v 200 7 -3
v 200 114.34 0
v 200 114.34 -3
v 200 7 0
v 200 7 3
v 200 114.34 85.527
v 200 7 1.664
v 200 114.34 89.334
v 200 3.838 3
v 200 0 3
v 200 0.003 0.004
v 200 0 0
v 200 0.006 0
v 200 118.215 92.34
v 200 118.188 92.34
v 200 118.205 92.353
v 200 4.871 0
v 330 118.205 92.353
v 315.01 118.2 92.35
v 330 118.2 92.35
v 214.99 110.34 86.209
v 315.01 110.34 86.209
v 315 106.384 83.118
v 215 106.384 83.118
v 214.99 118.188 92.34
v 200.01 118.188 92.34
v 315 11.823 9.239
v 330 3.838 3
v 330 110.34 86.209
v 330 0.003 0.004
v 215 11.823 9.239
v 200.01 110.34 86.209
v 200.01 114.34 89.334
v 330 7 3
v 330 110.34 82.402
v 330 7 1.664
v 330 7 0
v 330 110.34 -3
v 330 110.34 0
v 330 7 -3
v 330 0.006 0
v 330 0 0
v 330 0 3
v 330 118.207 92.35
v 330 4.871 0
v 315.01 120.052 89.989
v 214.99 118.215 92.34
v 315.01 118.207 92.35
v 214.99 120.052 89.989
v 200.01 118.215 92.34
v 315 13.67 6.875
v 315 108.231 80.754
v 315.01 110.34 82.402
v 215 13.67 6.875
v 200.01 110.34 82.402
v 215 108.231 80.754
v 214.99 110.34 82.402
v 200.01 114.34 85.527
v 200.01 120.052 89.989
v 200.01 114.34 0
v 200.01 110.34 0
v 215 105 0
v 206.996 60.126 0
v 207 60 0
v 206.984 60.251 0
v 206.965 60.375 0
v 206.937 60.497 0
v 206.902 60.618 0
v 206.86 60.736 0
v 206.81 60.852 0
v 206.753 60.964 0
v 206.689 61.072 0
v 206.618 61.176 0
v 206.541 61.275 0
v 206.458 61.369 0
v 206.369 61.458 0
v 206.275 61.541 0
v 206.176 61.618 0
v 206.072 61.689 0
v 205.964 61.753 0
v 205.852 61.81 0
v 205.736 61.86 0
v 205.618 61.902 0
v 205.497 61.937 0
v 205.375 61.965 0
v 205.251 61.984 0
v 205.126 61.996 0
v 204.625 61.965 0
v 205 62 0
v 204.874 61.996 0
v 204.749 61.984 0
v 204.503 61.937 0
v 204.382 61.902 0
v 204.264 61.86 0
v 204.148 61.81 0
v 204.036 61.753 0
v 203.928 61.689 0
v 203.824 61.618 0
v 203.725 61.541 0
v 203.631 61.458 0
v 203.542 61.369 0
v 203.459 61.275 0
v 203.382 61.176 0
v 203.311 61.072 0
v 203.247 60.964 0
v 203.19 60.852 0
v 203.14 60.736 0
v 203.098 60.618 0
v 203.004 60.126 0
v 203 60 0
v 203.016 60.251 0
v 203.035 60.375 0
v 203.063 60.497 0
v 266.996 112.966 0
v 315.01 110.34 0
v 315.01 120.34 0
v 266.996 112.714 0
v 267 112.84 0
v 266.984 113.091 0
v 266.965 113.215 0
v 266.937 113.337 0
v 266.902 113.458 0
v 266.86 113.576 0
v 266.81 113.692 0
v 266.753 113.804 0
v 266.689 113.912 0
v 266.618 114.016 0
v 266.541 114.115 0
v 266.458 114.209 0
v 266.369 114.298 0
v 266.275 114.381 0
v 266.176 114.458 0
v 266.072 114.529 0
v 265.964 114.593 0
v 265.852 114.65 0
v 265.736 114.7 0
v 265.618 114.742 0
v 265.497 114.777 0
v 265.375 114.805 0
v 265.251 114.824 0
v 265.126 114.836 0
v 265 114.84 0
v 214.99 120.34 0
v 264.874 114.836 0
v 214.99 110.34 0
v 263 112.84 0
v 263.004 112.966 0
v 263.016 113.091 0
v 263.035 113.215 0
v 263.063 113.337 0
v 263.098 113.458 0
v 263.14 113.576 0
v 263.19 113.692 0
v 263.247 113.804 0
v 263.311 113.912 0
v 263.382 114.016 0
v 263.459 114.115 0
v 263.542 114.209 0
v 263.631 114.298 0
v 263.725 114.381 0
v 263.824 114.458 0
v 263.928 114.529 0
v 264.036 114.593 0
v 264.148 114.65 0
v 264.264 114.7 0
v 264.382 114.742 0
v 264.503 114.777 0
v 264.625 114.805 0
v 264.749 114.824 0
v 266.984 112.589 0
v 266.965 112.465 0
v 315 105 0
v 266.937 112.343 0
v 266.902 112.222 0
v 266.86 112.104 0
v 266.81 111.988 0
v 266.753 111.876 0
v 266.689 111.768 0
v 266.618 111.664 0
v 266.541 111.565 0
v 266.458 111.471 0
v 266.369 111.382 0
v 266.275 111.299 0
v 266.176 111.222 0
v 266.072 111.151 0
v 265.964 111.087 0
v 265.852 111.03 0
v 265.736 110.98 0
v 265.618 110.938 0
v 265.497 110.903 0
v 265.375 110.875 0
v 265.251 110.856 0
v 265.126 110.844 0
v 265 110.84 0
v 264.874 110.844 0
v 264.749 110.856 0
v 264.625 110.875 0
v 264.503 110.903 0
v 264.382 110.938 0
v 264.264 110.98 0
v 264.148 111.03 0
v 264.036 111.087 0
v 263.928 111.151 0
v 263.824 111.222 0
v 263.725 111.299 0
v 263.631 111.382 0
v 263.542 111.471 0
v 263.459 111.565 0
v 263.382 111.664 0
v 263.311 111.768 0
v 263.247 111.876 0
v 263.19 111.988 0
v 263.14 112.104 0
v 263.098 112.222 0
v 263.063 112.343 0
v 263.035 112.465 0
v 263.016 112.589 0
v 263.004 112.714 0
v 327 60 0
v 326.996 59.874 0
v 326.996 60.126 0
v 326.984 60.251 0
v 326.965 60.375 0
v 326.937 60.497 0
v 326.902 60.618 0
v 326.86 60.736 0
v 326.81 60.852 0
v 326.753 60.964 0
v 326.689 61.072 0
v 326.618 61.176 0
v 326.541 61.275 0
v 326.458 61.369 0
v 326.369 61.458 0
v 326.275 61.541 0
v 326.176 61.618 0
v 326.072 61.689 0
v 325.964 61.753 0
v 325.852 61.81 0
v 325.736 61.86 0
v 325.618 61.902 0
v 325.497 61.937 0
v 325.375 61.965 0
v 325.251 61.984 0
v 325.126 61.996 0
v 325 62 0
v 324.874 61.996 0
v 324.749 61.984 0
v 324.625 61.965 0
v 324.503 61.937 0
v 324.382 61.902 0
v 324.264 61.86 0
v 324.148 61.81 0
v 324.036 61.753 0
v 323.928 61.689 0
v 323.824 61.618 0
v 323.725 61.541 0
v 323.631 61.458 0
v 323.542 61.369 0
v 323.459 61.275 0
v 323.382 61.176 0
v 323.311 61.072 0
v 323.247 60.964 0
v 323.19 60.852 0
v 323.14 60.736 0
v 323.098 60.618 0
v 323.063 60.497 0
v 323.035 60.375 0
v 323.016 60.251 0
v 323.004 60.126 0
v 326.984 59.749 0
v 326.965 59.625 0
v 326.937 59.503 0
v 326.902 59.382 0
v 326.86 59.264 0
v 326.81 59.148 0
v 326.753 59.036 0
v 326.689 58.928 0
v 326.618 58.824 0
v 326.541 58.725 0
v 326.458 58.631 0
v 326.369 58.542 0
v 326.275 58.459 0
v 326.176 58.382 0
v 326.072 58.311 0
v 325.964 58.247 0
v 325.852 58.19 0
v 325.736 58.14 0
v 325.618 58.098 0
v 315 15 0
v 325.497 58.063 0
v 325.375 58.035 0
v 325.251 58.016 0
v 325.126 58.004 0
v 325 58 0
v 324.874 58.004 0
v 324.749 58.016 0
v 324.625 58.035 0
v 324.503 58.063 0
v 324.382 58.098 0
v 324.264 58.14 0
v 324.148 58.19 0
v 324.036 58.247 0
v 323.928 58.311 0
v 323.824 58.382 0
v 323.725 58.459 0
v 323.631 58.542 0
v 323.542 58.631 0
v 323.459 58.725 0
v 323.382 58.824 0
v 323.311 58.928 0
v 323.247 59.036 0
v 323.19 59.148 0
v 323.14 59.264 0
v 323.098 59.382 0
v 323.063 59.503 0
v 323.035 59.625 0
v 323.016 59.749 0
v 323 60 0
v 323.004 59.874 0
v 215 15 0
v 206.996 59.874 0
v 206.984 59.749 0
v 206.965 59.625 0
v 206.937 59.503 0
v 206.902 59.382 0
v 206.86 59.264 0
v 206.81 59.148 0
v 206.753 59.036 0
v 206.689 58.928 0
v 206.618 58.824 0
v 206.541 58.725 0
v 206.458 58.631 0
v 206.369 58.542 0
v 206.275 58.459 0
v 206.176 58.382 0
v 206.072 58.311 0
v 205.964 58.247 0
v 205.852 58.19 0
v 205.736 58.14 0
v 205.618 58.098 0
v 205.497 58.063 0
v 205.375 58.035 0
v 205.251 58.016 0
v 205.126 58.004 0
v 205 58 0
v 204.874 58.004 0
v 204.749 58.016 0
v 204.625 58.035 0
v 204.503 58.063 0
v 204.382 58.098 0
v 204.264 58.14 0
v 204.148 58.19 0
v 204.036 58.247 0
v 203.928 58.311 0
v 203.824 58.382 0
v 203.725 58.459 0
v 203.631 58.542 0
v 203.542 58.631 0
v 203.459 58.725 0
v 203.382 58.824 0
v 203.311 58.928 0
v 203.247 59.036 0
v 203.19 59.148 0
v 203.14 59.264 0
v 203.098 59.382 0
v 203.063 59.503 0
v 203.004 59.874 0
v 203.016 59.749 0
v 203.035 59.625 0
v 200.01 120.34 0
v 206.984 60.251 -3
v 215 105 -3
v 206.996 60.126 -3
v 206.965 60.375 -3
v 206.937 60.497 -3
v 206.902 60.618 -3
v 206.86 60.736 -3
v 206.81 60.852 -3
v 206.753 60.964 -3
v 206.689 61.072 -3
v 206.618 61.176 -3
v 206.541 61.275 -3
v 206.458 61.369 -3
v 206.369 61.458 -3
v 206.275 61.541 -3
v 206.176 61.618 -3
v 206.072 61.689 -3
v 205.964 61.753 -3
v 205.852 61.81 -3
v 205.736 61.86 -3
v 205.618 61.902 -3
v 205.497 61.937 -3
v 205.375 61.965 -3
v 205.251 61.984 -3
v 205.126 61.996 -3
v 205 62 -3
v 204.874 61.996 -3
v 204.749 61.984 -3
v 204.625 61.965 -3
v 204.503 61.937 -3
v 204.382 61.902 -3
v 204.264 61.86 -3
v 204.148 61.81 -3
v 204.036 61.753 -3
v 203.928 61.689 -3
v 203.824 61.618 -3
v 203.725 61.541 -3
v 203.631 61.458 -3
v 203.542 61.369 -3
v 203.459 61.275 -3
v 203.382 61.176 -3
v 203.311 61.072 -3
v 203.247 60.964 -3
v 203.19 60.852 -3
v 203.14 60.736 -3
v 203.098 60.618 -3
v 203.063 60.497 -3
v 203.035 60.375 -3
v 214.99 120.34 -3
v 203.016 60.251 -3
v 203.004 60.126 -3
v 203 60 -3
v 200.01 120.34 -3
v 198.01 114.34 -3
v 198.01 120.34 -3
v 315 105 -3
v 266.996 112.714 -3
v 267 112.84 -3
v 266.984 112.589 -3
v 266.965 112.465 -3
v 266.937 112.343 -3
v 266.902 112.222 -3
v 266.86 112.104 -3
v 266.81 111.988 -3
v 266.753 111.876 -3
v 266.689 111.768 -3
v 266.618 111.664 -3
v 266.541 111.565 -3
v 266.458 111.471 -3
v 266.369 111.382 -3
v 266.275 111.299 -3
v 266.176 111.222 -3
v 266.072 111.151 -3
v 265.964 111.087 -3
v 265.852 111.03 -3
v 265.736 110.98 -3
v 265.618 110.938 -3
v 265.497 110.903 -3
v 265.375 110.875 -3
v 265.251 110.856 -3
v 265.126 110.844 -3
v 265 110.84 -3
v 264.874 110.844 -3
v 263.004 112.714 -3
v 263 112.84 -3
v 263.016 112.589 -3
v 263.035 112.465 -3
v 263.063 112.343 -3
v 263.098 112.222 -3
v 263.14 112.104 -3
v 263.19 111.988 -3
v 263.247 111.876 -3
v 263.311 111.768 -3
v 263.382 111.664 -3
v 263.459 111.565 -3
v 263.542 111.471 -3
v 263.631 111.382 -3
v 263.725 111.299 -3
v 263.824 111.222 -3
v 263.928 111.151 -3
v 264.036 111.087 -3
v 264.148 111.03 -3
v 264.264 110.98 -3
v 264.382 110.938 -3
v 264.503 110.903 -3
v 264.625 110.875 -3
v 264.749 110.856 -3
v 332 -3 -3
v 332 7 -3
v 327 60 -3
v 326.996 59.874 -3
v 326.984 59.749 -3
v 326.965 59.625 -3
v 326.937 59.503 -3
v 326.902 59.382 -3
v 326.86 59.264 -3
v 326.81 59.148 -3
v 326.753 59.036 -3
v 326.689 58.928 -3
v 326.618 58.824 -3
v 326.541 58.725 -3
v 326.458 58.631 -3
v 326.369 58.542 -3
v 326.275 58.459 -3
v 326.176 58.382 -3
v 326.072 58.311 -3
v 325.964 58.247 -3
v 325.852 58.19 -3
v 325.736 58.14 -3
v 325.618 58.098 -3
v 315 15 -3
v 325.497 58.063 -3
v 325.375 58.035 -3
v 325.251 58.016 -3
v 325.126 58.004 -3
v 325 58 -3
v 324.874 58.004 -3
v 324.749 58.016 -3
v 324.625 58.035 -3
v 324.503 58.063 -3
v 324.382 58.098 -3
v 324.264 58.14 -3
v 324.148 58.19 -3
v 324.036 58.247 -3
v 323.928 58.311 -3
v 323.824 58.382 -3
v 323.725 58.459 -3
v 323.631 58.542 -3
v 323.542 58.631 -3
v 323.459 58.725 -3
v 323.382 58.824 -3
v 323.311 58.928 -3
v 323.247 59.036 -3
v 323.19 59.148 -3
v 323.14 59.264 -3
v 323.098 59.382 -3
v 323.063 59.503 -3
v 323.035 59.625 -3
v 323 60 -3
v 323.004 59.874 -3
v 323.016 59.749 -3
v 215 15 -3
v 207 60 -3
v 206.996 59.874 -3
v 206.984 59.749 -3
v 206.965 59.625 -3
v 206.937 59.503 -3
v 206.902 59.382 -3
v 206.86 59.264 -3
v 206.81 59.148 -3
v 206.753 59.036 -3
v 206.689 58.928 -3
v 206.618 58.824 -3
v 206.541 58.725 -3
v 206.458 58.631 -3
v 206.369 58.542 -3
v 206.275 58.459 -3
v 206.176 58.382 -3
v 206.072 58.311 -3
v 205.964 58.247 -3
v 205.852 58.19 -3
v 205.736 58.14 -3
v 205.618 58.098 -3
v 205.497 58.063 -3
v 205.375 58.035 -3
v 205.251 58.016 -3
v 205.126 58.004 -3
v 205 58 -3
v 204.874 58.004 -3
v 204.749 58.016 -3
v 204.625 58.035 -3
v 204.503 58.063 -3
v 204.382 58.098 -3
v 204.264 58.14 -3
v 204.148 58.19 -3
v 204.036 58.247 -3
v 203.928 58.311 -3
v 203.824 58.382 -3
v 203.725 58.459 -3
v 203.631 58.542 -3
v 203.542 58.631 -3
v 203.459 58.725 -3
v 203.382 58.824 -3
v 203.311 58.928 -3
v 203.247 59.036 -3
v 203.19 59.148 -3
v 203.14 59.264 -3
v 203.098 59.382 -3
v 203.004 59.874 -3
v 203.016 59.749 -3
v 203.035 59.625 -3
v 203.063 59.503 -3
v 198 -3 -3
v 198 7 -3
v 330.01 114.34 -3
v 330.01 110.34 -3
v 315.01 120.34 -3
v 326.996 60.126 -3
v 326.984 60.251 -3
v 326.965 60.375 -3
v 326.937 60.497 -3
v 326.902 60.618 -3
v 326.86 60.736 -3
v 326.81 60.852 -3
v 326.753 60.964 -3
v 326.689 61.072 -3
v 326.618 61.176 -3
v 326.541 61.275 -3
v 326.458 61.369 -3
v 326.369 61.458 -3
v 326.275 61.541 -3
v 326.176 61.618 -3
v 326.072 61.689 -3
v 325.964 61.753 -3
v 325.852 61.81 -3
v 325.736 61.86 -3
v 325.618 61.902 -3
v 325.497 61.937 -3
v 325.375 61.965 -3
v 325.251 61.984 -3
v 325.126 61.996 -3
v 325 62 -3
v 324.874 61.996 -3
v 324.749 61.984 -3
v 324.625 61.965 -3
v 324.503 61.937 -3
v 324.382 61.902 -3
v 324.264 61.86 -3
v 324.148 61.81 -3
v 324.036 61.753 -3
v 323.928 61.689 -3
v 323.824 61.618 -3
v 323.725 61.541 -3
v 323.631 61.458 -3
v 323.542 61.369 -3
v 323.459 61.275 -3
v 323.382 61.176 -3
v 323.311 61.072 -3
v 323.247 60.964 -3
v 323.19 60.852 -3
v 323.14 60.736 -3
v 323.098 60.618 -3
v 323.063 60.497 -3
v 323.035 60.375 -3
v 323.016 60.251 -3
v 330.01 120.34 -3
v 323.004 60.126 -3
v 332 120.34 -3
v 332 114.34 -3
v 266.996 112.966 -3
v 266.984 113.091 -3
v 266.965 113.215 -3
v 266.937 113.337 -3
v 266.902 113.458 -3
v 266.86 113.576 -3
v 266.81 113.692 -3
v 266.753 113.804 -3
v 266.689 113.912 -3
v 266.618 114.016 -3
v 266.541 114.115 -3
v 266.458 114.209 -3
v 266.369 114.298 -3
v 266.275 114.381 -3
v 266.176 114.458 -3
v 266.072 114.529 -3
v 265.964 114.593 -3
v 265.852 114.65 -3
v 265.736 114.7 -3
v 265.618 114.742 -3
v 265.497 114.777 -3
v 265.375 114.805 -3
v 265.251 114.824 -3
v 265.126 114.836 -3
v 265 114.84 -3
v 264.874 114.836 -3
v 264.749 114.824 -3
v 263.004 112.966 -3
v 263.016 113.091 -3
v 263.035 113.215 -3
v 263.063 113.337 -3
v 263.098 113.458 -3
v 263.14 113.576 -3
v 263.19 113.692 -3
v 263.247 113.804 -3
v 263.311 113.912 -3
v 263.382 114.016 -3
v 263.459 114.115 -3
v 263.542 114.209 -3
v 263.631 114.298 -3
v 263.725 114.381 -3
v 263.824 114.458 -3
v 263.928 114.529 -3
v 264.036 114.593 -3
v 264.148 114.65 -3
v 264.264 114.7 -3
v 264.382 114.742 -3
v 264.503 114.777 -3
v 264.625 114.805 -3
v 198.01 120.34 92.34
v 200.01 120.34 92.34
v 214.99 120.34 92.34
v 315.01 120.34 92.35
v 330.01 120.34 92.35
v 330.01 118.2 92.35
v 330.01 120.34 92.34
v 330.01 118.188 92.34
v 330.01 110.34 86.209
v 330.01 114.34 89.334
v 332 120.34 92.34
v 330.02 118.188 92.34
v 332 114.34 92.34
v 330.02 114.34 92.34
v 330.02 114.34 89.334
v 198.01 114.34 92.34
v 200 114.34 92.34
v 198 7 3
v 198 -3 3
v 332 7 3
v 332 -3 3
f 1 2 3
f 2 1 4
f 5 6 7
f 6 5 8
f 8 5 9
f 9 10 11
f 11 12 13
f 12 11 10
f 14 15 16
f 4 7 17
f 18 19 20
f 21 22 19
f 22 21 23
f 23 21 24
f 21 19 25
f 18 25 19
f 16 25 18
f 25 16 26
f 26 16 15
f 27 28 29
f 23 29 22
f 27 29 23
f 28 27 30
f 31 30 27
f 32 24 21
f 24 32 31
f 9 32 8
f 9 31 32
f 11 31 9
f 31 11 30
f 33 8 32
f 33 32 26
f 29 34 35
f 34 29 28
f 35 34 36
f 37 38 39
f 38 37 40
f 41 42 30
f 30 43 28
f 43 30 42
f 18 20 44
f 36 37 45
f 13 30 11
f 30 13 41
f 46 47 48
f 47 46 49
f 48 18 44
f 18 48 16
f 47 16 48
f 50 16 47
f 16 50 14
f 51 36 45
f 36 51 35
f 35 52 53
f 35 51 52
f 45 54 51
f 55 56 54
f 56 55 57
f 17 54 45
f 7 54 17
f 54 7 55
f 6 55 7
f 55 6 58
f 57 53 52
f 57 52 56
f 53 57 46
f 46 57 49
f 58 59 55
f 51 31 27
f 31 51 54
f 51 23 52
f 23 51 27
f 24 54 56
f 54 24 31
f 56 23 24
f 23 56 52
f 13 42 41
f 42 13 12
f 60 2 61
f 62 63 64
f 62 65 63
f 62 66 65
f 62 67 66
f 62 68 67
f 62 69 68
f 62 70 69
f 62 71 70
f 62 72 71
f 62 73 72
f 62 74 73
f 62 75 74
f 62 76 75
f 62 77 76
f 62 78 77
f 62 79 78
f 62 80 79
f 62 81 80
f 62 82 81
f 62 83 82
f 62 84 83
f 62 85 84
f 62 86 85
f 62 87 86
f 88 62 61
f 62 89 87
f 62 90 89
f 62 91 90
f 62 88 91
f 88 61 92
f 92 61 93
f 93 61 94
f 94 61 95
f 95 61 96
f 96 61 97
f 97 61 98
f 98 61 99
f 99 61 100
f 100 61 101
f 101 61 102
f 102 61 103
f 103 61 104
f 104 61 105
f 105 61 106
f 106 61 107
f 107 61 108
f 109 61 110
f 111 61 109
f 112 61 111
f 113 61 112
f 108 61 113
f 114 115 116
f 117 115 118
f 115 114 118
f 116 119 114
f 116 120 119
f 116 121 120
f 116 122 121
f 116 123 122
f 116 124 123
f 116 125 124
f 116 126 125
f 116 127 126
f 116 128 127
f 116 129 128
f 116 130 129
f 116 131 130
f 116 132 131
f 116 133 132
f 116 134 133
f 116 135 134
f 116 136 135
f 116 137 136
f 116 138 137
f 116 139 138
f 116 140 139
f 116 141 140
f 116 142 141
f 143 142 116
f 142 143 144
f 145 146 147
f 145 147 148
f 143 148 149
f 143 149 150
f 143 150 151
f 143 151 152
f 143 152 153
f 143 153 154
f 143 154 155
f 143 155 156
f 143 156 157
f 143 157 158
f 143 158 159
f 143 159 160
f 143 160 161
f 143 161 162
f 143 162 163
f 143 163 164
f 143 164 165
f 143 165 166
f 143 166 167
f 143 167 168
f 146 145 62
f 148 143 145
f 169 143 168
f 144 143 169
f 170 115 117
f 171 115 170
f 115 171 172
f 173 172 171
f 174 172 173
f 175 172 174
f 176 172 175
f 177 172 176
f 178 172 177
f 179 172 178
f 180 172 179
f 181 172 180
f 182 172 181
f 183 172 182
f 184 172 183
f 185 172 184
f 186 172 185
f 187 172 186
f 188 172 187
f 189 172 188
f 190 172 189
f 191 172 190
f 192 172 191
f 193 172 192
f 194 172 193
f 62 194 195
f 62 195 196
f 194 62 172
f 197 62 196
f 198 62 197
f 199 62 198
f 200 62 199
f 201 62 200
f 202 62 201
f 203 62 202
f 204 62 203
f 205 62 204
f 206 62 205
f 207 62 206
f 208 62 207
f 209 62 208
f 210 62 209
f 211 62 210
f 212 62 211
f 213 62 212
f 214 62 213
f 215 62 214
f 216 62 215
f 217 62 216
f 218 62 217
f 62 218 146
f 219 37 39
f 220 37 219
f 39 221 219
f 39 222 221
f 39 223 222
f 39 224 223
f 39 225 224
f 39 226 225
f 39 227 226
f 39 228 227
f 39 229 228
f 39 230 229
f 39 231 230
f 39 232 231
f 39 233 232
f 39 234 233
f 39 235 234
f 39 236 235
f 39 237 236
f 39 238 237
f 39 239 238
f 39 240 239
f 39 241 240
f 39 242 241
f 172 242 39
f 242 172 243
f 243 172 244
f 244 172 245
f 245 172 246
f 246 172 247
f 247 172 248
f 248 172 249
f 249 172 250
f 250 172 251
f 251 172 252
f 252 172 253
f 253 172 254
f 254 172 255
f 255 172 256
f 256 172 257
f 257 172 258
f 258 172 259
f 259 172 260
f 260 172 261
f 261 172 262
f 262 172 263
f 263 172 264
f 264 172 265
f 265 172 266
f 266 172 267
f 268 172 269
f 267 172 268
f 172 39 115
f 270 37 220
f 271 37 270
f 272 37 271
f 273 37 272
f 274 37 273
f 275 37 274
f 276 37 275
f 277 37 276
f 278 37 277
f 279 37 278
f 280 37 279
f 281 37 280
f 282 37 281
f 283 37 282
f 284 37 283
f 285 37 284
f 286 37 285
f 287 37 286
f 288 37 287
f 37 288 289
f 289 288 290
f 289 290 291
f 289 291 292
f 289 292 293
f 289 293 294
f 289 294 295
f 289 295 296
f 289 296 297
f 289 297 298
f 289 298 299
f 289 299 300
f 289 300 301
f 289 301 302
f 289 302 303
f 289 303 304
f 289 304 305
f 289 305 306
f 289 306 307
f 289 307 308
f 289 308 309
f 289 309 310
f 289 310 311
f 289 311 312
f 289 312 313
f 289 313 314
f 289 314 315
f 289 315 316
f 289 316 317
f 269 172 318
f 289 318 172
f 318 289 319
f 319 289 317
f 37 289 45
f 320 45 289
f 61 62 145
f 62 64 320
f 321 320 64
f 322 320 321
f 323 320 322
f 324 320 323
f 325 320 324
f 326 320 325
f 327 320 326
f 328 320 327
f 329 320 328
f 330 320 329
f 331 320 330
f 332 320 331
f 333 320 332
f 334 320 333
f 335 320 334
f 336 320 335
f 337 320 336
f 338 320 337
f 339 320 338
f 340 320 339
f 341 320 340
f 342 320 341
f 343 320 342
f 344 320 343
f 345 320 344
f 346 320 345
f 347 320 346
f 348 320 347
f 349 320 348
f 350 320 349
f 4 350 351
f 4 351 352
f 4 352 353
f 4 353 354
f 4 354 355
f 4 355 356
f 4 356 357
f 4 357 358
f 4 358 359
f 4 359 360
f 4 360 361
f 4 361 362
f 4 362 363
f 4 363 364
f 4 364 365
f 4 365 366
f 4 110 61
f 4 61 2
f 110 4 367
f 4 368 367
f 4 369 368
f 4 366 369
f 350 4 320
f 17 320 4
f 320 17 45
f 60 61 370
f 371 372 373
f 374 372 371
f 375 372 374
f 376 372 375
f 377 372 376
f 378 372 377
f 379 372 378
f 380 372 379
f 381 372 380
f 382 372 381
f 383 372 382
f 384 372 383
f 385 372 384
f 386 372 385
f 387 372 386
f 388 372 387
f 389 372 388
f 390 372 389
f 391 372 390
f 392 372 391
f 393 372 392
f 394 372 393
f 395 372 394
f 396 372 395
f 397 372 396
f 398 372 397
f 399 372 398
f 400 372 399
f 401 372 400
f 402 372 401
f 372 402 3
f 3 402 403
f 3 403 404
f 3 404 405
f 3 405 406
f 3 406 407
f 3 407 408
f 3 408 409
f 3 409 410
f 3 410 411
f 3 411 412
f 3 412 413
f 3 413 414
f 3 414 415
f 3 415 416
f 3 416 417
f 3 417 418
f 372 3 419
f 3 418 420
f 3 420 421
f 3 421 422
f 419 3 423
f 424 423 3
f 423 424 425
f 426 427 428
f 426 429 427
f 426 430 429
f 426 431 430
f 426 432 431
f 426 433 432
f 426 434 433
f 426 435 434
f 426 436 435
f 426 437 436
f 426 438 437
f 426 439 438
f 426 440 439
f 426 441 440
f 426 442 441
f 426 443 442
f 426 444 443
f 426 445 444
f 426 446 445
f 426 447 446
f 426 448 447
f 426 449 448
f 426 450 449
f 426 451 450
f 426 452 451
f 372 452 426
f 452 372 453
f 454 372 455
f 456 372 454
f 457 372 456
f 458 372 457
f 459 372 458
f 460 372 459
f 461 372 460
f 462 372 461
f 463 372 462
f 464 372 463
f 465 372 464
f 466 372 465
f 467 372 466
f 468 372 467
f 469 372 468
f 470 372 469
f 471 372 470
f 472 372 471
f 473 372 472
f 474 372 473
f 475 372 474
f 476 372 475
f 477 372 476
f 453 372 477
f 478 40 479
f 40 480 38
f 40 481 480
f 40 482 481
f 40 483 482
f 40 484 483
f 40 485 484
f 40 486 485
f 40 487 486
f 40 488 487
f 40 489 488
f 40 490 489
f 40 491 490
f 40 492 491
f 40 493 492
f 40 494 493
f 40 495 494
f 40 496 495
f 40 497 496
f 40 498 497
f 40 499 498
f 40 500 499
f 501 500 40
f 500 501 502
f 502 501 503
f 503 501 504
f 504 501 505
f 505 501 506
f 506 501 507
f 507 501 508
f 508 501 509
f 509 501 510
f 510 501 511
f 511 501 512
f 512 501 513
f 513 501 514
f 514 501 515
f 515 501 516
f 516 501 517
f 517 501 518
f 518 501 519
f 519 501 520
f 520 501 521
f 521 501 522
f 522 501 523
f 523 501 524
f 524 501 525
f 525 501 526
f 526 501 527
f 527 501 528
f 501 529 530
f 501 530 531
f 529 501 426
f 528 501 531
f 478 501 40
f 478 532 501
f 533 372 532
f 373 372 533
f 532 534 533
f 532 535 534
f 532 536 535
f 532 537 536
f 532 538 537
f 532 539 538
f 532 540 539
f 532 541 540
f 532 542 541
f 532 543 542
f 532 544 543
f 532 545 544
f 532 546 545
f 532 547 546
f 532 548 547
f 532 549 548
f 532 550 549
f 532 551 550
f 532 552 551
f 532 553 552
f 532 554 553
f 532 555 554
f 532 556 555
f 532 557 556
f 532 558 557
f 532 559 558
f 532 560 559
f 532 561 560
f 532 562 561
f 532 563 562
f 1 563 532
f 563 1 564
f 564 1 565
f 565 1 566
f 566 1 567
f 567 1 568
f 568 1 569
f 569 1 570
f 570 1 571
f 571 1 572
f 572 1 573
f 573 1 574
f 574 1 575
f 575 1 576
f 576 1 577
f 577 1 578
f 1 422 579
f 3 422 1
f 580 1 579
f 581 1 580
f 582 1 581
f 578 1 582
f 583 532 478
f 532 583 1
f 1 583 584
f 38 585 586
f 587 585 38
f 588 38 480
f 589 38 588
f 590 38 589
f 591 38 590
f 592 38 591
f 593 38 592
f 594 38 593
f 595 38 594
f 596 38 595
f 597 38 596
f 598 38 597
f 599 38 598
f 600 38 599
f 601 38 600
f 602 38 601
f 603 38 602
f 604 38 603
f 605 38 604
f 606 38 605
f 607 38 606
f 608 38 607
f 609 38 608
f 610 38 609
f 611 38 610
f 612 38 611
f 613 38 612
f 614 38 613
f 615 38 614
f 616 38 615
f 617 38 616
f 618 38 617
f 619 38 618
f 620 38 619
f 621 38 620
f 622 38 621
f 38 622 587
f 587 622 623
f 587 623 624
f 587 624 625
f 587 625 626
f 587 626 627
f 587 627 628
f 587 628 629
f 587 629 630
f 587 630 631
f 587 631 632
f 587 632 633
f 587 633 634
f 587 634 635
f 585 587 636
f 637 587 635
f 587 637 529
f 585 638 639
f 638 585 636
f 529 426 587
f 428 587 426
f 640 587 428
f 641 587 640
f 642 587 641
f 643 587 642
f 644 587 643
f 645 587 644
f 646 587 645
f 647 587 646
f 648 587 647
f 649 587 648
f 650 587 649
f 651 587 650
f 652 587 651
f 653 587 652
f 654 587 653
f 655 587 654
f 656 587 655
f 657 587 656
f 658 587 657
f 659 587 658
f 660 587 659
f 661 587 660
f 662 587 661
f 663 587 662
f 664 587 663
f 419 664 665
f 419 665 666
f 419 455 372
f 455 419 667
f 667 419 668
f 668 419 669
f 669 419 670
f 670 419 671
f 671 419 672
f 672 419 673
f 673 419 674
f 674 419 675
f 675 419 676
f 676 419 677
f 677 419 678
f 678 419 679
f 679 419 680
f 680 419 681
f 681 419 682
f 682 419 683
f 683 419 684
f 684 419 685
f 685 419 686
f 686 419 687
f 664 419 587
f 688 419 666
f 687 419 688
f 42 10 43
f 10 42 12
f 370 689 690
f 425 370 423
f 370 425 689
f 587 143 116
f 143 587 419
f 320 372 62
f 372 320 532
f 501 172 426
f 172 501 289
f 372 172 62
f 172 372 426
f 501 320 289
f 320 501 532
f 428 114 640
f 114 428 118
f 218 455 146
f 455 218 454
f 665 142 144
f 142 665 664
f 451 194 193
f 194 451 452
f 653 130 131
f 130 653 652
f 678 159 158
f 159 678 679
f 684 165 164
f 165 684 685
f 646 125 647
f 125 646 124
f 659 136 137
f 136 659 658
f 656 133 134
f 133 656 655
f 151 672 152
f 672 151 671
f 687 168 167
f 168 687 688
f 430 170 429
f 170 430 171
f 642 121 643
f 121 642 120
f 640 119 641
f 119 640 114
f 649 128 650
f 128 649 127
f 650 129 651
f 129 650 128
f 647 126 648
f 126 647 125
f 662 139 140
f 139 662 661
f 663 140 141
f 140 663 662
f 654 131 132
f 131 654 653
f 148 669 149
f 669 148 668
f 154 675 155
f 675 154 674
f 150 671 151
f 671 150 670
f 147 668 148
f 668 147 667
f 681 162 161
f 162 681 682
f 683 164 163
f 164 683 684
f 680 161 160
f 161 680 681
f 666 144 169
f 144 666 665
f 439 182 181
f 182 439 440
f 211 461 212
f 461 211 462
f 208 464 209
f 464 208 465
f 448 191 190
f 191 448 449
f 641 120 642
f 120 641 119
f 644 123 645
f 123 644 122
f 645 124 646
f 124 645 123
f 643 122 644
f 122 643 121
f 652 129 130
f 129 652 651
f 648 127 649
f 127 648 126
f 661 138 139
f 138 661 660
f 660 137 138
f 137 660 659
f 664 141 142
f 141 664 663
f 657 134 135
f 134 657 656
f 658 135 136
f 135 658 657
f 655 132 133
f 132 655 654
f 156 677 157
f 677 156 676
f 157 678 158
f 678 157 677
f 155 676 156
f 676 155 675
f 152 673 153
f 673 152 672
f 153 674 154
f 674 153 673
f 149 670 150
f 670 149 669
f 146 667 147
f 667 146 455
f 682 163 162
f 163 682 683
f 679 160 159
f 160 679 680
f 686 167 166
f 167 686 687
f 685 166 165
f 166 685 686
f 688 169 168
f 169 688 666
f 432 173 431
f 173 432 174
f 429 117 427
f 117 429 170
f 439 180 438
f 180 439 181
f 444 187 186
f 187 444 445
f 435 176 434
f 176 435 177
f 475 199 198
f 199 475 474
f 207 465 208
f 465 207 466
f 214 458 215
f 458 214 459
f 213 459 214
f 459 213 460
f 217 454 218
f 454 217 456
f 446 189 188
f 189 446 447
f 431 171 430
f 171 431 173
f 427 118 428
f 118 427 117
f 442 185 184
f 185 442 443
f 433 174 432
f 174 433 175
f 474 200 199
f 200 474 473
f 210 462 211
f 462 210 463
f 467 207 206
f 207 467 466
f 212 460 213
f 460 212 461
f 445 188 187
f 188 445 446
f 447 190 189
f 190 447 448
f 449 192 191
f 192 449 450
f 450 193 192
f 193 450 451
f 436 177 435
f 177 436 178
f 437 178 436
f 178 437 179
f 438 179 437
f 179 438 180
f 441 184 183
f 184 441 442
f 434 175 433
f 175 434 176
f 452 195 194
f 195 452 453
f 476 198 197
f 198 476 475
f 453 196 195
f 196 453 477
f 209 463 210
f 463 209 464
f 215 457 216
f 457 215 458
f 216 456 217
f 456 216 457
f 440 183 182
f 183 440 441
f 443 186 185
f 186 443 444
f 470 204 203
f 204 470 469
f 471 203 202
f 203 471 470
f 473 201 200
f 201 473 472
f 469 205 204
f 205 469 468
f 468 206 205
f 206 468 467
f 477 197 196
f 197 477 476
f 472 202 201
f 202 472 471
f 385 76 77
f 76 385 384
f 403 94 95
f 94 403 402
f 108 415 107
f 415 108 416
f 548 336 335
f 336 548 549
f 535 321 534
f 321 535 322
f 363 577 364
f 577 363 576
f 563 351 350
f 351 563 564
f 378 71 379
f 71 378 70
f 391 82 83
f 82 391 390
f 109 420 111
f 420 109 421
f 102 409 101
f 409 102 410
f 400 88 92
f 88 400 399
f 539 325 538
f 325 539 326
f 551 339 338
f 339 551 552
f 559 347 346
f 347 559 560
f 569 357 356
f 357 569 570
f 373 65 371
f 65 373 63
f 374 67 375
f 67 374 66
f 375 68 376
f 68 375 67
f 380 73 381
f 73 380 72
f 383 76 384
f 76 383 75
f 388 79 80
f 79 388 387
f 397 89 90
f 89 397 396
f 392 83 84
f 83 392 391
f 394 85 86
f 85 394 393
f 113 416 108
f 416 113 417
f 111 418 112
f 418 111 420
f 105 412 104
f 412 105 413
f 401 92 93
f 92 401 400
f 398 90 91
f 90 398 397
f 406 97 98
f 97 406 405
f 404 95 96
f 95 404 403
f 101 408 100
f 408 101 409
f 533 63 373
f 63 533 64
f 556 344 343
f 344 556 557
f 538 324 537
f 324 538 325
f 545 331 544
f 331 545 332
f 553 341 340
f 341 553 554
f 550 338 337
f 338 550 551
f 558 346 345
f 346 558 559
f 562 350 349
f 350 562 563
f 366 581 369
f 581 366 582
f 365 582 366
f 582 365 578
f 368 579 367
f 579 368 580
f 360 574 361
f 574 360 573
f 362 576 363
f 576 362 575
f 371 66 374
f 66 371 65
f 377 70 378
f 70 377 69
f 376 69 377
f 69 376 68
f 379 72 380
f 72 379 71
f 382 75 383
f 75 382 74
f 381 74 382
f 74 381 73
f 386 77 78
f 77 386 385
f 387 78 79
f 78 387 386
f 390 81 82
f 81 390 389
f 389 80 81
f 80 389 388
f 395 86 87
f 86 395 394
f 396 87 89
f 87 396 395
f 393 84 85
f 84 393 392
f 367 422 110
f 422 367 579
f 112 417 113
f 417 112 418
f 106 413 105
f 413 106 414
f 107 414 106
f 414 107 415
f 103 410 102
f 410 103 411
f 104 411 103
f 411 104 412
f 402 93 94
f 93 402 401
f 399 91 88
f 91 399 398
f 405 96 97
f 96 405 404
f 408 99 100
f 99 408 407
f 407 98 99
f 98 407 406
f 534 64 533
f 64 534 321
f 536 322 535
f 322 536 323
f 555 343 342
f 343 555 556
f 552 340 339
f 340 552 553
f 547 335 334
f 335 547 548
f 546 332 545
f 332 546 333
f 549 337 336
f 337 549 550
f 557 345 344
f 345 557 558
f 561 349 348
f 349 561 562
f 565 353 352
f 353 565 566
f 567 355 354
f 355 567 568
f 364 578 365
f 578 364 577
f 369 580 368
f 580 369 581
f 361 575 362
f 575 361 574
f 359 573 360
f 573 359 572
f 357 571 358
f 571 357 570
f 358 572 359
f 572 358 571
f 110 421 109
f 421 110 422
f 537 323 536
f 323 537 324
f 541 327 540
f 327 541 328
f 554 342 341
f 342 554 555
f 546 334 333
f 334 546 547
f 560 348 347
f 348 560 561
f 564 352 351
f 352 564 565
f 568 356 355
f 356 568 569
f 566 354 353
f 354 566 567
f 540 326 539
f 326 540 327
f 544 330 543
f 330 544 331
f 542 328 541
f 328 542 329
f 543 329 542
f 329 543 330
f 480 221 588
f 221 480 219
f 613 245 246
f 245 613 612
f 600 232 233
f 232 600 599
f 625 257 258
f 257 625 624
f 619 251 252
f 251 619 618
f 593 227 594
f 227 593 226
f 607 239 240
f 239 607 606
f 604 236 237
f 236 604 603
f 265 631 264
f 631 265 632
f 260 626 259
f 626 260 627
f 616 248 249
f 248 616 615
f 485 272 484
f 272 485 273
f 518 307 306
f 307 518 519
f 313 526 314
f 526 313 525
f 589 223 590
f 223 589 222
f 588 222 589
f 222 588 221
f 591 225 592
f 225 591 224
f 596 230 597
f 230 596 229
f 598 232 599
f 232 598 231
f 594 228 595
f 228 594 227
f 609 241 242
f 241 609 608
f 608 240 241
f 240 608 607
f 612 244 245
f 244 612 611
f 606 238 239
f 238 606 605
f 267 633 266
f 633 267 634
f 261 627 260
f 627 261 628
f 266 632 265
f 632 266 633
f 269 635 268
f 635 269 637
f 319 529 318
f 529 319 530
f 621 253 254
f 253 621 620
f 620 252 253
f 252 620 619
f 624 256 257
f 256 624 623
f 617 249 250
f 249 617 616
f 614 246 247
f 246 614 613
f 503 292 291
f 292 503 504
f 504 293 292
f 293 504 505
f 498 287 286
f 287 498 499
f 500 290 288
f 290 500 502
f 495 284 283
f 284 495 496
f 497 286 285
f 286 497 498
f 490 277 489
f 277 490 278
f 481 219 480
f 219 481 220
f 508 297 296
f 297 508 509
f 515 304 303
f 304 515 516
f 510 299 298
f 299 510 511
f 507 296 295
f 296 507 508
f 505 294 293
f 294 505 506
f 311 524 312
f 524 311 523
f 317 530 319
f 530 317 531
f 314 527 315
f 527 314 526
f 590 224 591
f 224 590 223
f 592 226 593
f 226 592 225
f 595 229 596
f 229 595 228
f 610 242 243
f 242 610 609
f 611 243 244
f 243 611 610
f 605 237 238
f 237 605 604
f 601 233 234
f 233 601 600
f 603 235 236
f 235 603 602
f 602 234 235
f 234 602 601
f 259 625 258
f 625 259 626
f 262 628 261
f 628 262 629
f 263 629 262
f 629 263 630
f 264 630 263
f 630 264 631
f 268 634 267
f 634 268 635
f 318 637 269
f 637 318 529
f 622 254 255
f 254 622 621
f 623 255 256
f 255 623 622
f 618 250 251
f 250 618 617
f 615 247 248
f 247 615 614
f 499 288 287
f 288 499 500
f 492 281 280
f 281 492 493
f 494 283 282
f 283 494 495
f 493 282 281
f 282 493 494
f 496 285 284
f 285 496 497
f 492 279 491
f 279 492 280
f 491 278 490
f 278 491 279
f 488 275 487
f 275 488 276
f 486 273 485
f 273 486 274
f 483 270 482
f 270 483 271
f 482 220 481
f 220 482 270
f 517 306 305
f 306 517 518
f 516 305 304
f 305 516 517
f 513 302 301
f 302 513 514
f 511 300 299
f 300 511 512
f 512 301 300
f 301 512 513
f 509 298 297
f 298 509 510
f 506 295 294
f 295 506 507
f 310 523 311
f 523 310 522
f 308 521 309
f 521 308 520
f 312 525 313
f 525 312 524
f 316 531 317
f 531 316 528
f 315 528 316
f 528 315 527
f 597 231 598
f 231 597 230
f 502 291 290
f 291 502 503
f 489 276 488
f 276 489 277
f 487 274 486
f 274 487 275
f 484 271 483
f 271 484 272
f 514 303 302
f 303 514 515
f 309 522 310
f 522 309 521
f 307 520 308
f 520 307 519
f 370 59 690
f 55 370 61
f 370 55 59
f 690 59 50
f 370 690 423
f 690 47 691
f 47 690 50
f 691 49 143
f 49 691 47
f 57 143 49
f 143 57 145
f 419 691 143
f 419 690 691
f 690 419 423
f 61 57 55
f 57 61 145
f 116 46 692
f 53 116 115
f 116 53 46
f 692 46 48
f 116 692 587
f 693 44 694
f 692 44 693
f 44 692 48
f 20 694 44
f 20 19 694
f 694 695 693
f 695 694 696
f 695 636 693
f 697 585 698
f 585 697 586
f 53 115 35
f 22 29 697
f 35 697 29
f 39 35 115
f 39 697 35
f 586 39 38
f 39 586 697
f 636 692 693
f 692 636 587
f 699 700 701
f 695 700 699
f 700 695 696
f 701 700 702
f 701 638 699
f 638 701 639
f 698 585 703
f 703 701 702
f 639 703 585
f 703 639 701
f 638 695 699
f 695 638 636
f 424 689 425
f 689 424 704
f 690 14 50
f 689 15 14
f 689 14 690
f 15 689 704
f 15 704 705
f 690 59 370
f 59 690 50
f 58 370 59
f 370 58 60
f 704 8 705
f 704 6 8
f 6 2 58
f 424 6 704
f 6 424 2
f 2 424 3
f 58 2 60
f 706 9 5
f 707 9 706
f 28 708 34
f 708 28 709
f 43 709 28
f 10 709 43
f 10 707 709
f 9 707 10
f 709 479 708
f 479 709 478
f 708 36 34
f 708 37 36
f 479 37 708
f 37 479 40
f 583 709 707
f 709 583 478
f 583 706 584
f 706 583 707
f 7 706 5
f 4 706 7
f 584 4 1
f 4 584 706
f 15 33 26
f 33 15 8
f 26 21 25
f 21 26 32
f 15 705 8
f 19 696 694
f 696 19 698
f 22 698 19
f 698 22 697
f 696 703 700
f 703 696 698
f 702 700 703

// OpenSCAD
//Soporte fijo de 38º de inclinación
difference(){
union(){
translate([0,1.85,-2.36])
difference(){
rotate([38,0,0])
    translate([200,0,0])
        cube([130,150,3]);
rotate([38,0,0])
    translate([215,15,-0.1])
        cube([100,120,3.2]);    
}
//Base
translate([200,0,-3])
difference(){
    cube([130,120.34,3]);
    translate([15,15,-0.01])
        cube([100,90,3.02]);
    translate([65,112.84,0])
        cylinder(d=4,h=10,$fn=100);
    translate([5,60,0])
        cylinder(d=4,h=10,$fn=100);
    translate([125,60,0])
        cylinder(d=4,h=10,$fn=100);
}

translate([200.01,110.34,-3])
union(){
//Soporte izq  
cube([14.98,10,95.34]);
//Soporte drch
translate([115,0,0])
    cube([15,10,95.35]);
}

//Laminas laterales de sujecion
//superiores
translate([330,114.34,-3])
    cube([2,6,95.34]);
translate([+198.01,114.34,-3])
    cube([2,6,95.34]);
//inferiores:
translate([330,-3,-3])
    cube([2,10,6]);
translate([198,-3,-3])
    cube([2,10,6]);

//Cubo sin más
translate([200,-3,-3])
    cube([130,3,6]);
}
//triángulos 1
translate([200,114.53,99])
rotate([-22,0,0])
rotate([0,90,0])
cylinder(r=15,h=15,$fn=3);
//triángulo 2
translate([314.99,114.53,99])
rotate([-22,0,0])
rotate([0,90,0])
cylinder(r=15,h=15.03,$fn=3);
}
